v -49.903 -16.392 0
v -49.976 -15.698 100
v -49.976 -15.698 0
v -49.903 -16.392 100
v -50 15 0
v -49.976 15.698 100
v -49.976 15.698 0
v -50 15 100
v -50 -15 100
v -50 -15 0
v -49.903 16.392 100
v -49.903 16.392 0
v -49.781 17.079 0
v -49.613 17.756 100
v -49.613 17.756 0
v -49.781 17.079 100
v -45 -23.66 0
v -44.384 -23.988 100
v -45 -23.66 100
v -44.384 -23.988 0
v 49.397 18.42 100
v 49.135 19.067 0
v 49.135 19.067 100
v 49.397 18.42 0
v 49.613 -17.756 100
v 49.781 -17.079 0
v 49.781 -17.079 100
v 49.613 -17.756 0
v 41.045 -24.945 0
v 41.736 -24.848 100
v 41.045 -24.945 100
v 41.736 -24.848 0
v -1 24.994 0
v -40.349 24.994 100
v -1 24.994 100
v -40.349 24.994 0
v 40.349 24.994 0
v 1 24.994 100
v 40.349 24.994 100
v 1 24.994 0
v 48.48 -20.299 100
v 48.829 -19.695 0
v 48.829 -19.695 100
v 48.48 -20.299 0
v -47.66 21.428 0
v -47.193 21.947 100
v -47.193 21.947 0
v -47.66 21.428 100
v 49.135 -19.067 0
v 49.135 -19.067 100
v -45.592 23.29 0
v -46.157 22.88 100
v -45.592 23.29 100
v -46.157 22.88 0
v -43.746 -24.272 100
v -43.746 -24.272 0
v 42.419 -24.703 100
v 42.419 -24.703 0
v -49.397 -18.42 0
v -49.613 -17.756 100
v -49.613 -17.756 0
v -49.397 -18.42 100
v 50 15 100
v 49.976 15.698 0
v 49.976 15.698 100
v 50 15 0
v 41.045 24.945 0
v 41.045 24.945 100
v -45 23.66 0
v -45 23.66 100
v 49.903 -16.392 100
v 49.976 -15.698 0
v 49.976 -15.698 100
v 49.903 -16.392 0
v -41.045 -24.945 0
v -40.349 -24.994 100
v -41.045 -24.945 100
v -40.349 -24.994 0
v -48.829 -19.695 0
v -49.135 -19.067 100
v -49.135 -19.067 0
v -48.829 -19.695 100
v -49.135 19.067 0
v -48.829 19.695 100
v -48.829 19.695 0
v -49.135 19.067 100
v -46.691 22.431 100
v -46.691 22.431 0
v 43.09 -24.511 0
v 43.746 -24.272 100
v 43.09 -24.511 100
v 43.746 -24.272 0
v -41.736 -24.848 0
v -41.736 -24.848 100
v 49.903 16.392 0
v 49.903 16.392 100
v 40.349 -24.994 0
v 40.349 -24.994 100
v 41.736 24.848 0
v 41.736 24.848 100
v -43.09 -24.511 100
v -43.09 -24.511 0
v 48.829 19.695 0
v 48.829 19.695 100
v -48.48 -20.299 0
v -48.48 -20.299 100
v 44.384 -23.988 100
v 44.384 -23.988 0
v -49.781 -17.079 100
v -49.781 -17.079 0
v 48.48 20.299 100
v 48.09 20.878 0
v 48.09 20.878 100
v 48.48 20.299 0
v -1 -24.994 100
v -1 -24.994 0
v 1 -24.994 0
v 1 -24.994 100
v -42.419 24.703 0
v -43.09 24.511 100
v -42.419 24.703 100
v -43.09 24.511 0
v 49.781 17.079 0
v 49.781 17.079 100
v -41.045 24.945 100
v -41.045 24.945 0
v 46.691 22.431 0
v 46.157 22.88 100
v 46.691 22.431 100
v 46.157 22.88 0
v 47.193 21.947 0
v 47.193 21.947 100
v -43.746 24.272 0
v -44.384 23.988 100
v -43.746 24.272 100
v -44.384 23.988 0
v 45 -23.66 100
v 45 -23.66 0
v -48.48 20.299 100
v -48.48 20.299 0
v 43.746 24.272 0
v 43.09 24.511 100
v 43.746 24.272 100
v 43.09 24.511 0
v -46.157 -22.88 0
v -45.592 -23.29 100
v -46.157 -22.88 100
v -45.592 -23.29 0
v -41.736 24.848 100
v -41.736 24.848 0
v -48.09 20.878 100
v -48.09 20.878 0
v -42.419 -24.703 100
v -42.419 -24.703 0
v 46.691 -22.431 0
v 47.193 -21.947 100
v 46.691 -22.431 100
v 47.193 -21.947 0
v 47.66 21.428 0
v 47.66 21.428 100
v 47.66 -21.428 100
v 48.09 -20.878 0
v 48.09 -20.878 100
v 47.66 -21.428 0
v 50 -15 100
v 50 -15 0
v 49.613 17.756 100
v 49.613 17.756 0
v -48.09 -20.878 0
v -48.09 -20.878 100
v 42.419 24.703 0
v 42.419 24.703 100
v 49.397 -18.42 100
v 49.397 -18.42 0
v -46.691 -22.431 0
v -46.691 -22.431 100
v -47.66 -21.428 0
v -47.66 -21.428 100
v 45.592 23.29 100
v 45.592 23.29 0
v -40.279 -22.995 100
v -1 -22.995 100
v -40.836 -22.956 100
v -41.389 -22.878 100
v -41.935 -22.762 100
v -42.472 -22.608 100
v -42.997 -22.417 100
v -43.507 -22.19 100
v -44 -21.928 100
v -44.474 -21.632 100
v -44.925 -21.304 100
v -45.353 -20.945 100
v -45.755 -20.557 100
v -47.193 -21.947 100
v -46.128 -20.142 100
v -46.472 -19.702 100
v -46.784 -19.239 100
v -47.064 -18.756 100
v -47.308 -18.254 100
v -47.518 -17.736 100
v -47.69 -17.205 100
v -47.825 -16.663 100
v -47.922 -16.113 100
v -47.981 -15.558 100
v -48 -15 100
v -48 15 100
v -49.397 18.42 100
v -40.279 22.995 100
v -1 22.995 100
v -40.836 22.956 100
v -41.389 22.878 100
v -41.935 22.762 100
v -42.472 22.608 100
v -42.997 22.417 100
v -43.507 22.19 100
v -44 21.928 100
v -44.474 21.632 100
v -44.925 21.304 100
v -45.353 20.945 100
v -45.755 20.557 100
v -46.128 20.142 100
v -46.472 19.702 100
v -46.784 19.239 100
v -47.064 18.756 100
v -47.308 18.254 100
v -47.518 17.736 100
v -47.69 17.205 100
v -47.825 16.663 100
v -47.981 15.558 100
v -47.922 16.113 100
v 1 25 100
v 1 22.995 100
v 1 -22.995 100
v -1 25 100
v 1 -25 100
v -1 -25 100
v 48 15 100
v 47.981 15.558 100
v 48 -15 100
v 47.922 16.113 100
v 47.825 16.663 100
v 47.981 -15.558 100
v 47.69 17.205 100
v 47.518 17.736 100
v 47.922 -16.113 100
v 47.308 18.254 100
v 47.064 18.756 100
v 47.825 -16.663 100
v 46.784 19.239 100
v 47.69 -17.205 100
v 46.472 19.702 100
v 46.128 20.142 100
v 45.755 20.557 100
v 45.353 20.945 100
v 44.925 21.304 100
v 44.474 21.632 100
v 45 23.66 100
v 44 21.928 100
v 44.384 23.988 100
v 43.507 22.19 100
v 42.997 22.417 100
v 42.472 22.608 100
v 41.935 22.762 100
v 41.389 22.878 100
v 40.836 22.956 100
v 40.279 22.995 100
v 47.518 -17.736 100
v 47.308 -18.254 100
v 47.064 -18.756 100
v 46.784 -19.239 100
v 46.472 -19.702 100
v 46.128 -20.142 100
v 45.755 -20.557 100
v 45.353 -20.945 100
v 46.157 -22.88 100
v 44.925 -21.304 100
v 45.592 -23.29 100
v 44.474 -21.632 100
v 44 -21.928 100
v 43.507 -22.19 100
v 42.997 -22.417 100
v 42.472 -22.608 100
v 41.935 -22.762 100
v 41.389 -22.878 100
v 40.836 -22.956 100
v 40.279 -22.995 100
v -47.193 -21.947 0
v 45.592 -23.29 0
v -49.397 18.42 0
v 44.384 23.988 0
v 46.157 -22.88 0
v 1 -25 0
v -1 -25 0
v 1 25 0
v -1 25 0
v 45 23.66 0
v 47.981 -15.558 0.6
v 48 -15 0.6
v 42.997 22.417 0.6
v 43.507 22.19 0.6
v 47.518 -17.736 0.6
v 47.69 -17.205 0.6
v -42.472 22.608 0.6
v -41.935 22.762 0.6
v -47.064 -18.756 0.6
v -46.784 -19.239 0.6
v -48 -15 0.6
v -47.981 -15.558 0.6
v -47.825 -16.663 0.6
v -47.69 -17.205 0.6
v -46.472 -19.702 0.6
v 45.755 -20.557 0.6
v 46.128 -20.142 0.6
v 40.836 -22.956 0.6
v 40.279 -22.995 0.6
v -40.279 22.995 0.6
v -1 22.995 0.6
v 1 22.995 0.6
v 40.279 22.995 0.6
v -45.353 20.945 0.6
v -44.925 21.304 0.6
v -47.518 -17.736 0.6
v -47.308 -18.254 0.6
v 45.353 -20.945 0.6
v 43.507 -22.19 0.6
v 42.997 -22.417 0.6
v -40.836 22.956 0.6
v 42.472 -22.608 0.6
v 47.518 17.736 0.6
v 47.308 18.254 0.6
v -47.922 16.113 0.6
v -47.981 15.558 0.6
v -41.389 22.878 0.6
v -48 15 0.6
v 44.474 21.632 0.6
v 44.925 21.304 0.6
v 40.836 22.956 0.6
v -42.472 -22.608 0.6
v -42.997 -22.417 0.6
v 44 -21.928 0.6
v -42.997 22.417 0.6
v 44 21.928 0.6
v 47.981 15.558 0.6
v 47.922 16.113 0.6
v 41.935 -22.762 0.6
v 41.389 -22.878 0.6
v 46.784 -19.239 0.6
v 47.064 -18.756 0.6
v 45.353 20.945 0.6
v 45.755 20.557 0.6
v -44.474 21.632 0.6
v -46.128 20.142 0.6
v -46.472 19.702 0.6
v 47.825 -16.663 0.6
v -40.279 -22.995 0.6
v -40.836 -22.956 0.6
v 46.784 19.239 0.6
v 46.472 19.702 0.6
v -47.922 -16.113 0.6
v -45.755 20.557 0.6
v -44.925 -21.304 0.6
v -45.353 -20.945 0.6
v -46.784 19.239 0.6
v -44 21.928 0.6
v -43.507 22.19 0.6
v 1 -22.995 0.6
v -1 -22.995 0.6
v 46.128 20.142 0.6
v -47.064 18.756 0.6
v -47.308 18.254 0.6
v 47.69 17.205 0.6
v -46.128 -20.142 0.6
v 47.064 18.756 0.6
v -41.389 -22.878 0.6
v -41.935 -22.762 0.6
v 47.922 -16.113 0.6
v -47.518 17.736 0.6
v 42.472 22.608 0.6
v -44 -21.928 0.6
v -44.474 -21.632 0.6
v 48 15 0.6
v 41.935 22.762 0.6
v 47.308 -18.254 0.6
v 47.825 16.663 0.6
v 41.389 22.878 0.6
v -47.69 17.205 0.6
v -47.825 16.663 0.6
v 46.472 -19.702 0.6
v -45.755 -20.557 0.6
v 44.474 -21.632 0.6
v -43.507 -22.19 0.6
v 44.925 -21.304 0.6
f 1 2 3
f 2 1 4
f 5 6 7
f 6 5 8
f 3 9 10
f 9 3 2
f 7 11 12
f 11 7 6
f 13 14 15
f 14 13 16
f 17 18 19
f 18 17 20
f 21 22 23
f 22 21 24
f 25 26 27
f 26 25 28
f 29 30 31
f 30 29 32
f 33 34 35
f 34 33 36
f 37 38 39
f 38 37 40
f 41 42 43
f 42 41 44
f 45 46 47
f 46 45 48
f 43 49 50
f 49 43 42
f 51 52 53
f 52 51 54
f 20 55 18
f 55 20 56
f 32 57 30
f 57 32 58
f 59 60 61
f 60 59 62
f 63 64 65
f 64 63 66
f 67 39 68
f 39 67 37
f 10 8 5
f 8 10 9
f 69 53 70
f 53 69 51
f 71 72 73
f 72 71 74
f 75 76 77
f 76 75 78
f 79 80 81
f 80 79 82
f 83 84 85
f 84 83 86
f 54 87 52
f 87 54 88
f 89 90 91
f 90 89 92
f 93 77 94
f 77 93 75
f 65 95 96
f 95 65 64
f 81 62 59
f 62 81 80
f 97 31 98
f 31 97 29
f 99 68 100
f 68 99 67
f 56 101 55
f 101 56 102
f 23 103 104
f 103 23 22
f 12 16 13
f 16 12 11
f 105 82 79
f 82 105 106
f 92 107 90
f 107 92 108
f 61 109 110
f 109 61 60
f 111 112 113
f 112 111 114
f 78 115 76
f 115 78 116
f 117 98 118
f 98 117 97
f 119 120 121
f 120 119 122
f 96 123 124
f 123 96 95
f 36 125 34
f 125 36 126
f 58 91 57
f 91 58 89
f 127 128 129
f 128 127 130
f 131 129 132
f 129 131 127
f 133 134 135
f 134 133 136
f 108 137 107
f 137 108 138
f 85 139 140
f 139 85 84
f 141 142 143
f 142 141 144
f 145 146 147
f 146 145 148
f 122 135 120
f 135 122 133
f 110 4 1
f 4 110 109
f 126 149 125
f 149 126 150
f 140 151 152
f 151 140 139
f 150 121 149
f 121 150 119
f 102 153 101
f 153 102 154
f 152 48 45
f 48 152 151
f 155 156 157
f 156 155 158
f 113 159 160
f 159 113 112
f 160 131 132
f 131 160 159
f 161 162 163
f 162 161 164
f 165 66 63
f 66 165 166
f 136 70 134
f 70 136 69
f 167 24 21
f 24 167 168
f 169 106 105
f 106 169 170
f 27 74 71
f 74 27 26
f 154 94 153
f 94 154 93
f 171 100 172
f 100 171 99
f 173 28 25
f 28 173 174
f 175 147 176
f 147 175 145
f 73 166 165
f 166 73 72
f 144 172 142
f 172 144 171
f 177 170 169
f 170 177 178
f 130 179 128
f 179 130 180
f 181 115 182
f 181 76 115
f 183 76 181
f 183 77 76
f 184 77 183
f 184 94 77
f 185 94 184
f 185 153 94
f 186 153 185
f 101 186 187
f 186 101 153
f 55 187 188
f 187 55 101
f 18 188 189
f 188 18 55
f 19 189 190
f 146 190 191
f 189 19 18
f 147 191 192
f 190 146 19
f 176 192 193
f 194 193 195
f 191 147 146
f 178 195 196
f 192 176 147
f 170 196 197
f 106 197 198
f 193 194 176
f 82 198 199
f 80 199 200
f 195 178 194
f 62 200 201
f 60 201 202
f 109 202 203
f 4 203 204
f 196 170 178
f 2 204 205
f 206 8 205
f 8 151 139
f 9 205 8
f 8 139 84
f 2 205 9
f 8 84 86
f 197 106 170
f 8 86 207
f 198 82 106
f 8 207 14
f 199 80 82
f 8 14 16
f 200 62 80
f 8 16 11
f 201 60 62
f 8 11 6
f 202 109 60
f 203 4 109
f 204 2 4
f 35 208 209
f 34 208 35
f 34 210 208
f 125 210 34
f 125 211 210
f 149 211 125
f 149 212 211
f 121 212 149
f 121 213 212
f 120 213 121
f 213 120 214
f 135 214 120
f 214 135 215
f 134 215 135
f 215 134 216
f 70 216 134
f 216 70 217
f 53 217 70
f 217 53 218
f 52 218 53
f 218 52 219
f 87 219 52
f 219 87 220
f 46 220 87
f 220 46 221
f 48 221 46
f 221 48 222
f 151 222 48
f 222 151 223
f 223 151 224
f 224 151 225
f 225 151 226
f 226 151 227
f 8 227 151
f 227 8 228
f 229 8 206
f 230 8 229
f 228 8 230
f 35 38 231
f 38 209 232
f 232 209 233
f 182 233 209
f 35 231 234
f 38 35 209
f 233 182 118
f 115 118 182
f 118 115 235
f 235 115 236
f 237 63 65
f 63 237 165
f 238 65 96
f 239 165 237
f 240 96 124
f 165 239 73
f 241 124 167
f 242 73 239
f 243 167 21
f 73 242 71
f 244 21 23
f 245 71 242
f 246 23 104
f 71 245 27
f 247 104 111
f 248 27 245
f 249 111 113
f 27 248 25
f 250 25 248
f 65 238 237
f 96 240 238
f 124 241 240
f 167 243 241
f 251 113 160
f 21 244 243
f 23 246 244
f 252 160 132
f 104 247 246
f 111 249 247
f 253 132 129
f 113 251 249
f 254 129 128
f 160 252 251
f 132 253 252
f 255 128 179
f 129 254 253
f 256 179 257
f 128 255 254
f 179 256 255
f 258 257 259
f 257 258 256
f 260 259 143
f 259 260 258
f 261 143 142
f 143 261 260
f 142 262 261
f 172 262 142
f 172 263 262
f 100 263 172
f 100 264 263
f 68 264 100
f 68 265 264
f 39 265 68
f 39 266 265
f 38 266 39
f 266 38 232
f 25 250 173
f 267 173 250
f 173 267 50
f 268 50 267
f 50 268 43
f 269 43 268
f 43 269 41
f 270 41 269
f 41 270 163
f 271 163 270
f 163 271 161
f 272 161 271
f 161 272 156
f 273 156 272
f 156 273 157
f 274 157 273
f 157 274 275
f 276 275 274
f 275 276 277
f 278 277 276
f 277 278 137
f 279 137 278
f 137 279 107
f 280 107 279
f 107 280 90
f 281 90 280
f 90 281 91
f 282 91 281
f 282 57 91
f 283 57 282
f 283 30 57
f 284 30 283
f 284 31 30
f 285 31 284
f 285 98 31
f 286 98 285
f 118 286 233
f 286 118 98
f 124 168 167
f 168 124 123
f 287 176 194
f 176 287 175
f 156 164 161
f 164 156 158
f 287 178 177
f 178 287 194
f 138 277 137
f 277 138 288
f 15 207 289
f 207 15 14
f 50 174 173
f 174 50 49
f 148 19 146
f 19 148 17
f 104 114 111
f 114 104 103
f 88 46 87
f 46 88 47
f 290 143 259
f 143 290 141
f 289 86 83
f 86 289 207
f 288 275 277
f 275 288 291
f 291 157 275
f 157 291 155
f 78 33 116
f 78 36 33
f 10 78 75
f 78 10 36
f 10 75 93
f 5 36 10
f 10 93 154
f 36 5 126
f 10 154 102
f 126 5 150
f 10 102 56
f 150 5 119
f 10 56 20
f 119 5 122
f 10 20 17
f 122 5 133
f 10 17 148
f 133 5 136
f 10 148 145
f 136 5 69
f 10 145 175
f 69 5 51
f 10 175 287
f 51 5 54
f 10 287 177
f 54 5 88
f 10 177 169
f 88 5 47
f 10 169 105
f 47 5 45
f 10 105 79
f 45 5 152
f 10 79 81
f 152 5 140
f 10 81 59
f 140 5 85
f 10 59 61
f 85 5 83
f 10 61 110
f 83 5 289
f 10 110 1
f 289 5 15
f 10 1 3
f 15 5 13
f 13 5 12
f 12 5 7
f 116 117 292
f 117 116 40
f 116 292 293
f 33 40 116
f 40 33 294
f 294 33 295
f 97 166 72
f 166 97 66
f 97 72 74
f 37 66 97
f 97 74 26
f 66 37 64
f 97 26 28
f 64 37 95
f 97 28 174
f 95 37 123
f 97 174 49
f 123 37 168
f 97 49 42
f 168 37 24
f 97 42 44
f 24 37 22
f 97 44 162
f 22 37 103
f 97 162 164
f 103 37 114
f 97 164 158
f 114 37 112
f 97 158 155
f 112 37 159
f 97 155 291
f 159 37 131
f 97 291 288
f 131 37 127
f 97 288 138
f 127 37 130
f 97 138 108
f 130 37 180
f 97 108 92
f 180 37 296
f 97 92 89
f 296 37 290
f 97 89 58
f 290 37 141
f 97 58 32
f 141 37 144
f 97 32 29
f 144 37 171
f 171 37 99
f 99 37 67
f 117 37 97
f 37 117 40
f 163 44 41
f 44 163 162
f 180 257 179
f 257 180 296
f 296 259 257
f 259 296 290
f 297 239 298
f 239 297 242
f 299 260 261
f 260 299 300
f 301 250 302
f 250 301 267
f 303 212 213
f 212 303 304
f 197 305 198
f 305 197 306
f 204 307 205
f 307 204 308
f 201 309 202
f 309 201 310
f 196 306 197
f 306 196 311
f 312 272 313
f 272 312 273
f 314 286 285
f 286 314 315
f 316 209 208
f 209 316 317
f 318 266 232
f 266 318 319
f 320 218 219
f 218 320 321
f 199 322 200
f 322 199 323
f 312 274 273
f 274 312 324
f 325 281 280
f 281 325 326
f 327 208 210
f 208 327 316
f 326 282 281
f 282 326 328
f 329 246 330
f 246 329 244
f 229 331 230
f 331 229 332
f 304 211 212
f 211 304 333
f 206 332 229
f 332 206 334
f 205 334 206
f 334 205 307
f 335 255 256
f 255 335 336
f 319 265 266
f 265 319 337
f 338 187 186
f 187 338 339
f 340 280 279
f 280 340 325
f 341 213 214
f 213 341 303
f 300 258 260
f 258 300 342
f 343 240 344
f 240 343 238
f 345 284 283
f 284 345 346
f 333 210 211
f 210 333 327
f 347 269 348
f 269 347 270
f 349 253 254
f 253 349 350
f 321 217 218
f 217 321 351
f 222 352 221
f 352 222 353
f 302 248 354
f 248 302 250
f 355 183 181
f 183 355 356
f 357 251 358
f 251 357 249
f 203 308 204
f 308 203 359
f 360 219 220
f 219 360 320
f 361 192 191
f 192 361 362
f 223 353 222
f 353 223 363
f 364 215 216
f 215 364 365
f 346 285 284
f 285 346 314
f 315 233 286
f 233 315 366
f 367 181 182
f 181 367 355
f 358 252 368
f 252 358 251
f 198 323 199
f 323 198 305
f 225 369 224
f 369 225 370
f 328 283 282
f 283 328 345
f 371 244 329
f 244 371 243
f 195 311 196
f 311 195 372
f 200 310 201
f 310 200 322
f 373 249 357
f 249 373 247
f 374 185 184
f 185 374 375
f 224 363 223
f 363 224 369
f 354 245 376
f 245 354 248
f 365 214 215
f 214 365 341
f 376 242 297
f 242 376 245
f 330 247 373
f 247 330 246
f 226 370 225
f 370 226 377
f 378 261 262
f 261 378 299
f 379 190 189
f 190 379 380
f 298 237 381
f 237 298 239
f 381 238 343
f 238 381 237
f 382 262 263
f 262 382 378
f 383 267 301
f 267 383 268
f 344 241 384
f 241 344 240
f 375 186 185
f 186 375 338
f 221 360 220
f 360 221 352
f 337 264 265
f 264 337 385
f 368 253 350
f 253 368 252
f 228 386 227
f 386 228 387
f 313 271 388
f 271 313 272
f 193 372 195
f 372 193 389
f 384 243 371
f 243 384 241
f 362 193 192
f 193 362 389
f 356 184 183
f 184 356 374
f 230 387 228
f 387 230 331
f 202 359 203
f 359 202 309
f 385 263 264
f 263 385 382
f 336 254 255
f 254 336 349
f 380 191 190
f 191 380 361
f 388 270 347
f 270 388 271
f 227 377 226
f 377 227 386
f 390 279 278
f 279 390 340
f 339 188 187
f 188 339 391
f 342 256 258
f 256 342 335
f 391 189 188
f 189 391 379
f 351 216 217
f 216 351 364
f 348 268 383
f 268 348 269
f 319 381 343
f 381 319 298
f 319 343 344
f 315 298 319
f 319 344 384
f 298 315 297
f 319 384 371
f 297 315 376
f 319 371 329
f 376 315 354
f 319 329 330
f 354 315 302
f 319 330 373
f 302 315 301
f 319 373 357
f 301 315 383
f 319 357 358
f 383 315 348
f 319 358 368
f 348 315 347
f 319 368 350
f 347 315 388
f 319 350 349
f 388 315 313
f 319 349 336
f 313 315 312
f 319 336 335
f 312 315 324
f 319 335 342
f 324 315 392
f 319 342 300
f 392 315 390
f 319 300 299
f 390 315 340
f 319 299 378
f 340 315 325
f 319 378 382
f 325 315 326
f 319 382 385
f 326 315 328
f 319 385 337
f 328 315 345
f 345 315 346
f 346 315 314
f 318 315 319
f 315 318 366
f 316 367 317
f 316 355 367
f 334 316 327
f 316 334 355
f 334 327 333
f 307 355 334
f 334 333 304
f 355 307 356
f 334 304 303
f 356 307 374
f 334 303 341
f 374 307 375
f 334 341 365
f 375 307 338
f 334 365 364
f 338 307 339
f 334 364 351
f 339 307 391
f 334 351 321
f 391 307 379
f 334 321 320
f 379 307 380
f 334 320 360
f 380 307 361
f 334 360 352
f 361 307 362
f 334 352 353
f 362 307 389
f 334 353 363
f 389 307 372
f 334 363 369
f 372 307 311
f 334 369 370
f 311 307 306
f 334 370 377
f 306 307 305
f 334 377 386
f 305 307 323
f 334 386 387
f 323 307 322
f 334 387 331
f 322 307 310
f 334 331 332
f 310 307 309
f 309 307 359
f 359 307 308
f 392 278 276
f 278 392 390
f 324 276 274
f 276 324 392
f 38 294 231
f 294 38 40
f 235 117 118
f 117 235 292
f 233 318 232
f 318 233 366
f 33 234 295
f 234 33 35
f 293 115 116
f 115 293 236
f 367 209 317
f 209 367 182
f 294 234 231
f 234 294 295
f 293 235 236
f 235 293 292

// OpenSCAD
$fn = 90;

x_size           = 100;   // Outside to outside X axis dimension
y_size           =  50;   // Outside to outside Y axis dimension
wall             =   2;   // Thickness of cup walls
corner_radius    =  10;   // Radius for corners
cup_height       = 100;   // Total height
bottom_thickness =   0.6; // Thickness of bottom of cup

module outside (cup_height, x_size, y_size, corner_radius) {
  linear_extrude (height = cup_height)
    hull ()
      for (x = [-1, 1])
        for (y = [-1, 1])
          translate ([x * ((x_size / 2) - corner_radius), y * ((y_size / 2) - corner_radius), 0])
            circle (r = corner_radius);
}

difference () {
  translate ([0, 0, 0])
    outside (cup_height, x_size, y_size, corner_radius);
  translate ([0, 0, bottom_thickness])
    outside ((cup_height - bottom_thickness) + 0.01, x_size - (wall * 2), y_size - (wall * 2), corner_radius - wall);
}

translate ([-wall / 2, -y_size / 2, 0])
  cube ([wall, y_size, cup_height]);
